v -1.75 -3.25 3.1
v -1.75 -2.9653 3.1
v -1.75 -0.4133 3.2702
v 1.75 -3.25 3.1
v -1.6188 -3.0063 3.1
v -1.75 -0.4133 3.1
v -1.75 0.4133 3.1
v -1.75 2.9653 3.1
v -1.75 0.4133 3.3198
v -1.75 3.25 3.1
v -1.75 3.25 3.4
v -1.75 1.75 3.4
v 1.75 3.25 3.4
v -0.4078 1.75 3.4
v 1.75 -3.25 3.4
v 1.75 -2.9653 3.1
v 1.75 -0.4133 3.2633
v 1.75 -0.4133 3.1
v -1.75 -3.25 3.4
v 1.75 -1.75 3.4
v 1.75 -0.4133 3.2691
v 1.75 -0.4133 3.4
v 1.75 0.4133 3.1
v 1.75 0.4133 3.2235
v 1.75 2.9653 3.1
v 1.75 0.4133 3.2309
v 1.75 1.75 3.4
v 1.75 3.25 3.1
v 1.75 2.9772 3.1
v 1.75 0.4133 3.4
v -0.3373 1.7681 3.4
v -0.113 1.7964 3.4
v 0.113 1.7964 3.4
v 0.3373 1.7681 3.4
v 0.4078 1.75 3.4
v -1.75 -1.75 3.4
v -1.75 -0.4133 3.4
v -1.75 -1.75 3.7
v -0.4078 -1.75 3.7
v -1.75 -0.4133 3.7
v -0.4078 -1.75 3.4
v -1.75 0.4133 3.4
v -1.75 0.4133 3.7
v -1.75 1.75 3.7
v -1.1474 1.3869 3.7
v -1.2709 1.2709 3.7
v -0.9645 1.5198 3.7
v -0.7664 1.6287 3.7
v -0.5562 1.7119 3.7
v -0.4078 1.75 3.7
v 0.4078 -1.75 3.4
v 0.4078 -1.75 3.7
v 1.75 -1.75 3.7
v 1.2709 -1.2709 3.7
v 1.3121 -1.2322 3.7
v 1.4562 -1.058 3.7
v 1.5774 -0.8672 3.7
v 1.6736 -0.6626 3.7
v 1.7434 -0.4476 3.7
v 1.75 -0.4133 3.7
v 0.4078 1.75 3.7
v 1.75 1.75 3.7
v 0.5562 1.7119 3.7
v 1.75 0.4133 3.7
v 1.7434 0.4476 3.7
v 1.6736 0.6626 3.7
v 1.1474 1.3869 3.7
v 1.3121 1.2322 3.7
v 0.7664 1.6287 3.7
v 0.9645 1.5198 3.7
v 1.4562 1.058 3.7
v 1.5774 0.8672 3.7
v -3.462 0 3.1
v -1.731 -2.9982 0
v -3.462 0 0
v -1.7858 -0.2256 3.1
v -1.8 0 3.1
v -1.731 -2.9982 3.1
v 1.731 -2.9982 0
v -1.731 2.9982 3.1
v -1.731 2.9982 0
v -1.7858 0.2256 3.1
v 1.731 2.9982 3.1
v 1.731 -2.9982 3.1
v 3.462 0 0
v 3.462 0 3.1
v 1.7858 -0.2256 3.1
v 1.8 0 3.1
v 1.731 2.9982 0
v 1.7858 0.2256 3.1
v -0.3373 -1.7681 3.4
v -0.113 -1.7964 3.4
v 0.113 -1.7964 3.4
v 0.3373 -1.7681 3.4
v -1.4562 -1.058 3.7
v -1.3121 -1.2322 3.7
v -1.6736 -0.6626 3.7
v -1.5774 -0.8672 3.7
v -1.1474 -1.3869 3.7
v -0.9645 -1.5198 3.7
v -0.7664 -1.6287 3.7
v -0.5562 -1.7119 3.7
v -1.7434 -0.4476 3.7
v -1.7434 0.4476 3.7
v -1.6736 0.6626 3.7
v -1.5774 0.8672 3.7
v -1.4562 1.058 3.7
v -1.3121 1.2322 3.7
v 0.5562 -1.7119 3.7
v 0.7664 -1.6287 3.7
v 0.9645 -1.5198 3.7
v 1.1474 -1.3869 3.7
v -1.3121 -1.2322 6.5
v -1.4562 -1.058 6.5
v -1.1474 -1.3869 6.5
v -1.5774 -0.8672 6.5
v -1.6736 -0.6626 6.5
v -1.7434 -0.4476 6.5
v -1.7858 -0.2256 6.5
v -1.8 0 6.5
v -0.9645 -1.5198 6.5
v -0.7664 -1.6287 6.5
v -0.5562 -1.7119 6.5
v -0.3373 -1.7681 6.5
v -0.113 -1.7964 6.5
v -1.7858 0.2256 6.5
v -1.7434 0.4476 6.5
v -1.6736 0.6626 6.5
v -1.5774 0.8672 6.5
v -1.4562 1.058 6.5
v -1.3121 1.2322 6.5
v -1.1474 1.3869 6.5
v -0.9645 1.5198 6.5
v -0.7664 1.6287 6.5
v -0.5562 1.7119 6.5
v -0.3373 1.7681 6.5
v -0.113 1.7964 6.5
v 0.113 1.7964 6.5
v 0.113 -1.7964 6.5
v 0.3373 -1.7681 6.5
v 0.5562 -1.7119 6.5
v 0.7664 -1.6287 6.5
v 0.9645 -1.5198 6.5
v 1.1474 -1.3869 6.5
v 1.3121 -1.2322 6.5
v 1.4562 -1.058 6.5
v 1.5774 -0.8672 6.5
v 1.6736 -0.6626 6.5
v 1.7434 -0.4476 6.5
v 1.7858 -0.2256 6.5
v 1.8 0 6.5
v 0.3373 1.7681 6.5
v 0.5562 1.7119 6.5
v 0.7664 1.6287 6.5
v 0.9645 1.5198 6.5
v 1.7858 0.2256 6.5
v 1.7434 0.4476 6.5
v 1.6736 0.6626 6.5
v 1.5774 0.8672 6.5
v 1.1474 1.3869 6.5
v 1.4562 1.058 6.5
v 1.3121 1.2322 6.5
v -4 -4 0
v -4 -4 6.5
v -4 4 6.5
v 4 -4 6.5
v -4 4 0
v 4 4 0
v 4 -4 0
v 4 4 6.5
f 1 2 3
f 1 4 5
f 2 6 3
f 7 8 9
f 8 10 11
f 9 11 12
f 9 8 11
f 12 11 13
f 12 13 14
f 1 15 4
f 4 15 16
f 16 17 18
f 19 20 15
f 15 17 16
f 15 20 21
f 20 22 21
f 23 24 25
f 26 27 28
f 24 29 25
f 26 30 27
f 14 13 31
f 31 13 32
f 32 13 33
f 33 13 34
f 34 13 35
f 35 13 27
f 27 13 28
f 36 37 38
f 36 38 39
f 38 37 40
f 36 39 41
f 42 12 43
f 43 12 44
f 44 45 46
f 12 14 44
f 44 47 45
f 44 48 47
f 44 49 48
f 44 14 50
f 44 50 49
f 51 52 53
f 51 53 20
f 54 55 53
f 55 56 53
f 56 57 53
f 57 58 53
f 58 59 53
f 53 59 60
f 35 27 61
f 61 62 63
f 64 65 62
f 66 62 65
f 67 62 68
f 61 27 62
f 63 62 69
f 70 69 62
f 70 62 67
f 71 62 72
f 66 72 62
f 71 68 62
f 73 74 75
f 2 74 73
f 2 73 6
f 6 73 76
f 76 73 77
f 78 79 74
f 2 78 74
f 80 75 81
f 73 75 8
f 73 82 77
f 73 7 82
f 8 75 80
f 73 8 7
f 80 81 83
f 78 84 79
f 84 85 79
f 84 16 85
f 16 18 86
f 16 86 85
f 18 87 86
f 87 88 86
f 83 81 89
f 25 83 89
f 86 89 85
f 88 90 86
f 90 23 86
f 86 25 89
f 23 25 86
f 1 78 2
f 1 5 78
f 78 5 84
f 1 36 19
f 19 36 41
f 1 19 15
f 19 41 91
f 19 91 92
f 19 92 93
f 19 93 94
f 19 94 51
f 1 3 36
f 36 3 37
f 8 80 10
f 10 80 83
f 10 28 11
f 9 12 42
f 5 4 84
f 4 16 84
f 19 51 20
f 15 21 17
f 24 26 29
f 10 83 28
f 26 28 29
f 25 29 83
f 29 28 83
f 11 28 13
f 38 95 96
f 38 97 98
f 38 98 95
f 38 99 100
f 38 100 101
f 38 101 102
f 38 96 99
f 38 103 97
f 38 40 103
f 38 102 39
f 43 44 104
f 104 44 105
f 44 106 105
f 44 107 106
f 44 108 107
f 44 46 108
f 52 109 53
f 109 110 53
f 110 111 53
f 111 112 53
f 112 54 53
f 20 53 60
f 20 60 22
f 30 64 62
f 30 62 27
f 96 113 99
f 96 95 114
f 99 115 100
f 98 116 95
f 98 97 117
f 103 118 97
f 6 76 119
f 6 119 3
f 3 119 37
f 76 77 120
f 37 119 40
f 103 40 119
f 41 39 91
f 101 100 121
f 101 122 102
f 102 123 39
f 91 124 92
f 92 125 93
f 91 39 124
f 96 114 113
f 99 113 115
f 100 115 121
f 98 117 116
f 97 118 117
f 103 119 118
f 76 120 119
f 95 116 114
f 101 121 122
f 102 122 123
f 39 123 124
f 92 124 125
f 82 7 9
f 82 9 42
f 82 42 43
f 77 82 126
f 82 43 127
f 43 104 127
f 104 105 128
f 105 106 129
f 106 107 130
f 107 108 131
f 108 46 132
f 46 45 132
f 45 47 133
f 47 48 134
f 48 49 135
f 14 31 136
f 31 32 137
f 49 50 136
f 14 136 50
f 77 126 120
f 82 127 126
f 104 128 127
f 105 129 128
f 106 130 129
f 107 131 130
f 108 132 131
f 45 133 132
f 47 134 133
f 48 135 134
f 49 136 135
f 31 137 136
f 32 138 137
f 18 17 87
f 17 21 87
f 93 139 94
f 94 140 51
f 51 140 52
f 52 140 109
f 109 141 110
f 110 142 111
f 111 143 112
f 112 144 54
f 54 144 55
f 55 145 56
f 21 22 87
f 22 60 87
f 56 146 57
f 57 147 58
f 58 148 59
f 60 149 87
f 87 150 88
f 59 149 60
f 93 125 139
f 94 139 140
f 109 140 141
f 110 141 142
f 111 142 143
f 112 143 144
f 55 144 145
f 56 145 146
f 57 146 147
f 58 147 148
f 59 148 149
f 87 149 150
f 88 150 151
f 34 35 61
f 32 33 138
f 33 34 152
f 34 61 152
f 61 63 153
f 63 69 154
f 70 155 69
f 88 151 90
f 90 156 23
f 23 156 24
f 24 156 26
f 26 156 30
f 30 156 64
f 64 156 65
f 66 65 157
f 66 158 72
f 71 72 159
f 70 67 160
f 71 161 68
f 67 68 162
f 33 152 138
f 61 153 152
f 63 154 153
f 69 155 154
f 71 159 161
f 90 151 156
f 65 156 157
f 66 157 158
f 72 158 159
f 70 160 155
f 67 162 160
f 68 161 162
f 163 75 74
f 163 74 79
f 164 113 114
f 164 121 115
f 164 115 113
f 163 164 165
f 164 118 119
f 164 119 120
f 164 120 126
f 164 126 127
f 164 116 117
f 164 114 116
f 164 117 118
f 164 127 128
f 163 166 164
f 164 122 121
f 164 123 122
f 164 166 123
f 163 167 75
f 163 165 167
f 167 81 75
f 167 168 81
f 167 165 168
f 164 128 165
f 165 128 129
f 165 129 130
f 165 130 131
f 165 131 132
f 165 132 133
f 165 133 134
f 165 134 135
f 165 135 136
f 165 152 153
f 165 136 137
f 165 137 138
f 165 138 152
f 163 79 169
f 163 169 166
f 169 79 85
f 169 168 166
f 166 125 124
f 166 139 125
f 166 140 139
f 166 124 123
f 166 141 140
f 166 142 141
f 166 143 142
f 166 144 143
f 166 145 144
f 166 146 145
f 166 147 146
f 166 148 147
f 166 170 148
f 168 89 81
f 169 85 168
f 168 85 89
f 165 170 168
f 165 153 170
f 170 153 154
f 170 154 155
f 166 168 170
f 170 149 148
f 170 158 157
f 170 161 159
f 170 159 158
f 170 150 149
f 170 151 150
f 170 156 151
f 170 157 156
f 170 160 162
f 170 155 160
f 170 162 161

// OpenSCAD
$fn = 50;

difference() {
	union() {
		translate(v = [22.5, -7.5, 9.5]) {
			rotate(a = [0, 0, 0]) {
				difference() {
					union() {
						translate(v = [-26.5, 3.5, -9.5]) {
							cube(size = [8, 8, 6.5]);
						}
					}
					union() {
						translate(v = [-22.5, 7.5, -9.6]) {
							rotate(a = [0, 0, 0]) {
								difference() {
									union() {
										translate(v = [-1.75, -3.25, -0.3]) {
											cube(size = [3.5, 6.5, 0.3]);
										}
										translate(v = [-1.75, -1.75, -0.6]) {
											cube(size = [3.5, 3.5, 0.3]);
										}
										translate(v = [-1.75, -3.25, 3.2]) {
											cube(size = [3.5, 6.5, 0.3]);
										}
										translate(v = [-1.75, -1.75, 3.5]) {
											cube(size = [3.5, 3.5, 0.3]);
										}
										linear_extrude(height = 3.2) {
											polygon(points = [[3.4619999999999997, 0.0], [1.7310000000000003, 2.9981799479017264], [-1.7309999999999992, 2.9981799479017264], [-3.4619999999999997, 4.2397272186481365e-16], [-1.7310000000000014, -2.998179947901726], [1.7309999999999977, -2.9981799479017277]]);
										}
										translate(v = [-1.75, -3.25, -0.3]) {
											cube(size = [3.5, 6.5, 0.3]);
										}
										translate(v = [-1.75, -1.75, -0.6]) {
											cube(size = [3.5, 3.5, 0.3]);
										}
										translate(v = [-1.75, -3.25, 3.2]) {
											cube(size = [3.5, 6.5, 0.3]);
										}
										translate(v = [-1.75, -1.75, 3.5]) {
											cube(size = [3.5, 3.5, 0.3]);
										}
										translate(v = [-1.75, -3.25, -0.3]) {
											cube(size = [3.5, 6.5, 0.3]);
										}
										translate(v = [-1.75, -1.75, -0.6]) {
											cube(size = [3.5, 3.5, 0.3]);
										}
										translate(v = [-1.75, -3.25, 3.2]) {
											cube(size = [3.5, 6.5, 0.3]);
										}
										translate(v = [-1.75, -1.75, 3.5]) {
											cube(size = [3.5, 3.5, 0.3]);
										}
									}
									union();
								}
							}
						}
						translate(v = [-22.5, 7.5, -9.6]) {
							cylinder(h = 6.7, r = 1.8);
						}
					}
				}
			}
		}
	}
	union();
}
